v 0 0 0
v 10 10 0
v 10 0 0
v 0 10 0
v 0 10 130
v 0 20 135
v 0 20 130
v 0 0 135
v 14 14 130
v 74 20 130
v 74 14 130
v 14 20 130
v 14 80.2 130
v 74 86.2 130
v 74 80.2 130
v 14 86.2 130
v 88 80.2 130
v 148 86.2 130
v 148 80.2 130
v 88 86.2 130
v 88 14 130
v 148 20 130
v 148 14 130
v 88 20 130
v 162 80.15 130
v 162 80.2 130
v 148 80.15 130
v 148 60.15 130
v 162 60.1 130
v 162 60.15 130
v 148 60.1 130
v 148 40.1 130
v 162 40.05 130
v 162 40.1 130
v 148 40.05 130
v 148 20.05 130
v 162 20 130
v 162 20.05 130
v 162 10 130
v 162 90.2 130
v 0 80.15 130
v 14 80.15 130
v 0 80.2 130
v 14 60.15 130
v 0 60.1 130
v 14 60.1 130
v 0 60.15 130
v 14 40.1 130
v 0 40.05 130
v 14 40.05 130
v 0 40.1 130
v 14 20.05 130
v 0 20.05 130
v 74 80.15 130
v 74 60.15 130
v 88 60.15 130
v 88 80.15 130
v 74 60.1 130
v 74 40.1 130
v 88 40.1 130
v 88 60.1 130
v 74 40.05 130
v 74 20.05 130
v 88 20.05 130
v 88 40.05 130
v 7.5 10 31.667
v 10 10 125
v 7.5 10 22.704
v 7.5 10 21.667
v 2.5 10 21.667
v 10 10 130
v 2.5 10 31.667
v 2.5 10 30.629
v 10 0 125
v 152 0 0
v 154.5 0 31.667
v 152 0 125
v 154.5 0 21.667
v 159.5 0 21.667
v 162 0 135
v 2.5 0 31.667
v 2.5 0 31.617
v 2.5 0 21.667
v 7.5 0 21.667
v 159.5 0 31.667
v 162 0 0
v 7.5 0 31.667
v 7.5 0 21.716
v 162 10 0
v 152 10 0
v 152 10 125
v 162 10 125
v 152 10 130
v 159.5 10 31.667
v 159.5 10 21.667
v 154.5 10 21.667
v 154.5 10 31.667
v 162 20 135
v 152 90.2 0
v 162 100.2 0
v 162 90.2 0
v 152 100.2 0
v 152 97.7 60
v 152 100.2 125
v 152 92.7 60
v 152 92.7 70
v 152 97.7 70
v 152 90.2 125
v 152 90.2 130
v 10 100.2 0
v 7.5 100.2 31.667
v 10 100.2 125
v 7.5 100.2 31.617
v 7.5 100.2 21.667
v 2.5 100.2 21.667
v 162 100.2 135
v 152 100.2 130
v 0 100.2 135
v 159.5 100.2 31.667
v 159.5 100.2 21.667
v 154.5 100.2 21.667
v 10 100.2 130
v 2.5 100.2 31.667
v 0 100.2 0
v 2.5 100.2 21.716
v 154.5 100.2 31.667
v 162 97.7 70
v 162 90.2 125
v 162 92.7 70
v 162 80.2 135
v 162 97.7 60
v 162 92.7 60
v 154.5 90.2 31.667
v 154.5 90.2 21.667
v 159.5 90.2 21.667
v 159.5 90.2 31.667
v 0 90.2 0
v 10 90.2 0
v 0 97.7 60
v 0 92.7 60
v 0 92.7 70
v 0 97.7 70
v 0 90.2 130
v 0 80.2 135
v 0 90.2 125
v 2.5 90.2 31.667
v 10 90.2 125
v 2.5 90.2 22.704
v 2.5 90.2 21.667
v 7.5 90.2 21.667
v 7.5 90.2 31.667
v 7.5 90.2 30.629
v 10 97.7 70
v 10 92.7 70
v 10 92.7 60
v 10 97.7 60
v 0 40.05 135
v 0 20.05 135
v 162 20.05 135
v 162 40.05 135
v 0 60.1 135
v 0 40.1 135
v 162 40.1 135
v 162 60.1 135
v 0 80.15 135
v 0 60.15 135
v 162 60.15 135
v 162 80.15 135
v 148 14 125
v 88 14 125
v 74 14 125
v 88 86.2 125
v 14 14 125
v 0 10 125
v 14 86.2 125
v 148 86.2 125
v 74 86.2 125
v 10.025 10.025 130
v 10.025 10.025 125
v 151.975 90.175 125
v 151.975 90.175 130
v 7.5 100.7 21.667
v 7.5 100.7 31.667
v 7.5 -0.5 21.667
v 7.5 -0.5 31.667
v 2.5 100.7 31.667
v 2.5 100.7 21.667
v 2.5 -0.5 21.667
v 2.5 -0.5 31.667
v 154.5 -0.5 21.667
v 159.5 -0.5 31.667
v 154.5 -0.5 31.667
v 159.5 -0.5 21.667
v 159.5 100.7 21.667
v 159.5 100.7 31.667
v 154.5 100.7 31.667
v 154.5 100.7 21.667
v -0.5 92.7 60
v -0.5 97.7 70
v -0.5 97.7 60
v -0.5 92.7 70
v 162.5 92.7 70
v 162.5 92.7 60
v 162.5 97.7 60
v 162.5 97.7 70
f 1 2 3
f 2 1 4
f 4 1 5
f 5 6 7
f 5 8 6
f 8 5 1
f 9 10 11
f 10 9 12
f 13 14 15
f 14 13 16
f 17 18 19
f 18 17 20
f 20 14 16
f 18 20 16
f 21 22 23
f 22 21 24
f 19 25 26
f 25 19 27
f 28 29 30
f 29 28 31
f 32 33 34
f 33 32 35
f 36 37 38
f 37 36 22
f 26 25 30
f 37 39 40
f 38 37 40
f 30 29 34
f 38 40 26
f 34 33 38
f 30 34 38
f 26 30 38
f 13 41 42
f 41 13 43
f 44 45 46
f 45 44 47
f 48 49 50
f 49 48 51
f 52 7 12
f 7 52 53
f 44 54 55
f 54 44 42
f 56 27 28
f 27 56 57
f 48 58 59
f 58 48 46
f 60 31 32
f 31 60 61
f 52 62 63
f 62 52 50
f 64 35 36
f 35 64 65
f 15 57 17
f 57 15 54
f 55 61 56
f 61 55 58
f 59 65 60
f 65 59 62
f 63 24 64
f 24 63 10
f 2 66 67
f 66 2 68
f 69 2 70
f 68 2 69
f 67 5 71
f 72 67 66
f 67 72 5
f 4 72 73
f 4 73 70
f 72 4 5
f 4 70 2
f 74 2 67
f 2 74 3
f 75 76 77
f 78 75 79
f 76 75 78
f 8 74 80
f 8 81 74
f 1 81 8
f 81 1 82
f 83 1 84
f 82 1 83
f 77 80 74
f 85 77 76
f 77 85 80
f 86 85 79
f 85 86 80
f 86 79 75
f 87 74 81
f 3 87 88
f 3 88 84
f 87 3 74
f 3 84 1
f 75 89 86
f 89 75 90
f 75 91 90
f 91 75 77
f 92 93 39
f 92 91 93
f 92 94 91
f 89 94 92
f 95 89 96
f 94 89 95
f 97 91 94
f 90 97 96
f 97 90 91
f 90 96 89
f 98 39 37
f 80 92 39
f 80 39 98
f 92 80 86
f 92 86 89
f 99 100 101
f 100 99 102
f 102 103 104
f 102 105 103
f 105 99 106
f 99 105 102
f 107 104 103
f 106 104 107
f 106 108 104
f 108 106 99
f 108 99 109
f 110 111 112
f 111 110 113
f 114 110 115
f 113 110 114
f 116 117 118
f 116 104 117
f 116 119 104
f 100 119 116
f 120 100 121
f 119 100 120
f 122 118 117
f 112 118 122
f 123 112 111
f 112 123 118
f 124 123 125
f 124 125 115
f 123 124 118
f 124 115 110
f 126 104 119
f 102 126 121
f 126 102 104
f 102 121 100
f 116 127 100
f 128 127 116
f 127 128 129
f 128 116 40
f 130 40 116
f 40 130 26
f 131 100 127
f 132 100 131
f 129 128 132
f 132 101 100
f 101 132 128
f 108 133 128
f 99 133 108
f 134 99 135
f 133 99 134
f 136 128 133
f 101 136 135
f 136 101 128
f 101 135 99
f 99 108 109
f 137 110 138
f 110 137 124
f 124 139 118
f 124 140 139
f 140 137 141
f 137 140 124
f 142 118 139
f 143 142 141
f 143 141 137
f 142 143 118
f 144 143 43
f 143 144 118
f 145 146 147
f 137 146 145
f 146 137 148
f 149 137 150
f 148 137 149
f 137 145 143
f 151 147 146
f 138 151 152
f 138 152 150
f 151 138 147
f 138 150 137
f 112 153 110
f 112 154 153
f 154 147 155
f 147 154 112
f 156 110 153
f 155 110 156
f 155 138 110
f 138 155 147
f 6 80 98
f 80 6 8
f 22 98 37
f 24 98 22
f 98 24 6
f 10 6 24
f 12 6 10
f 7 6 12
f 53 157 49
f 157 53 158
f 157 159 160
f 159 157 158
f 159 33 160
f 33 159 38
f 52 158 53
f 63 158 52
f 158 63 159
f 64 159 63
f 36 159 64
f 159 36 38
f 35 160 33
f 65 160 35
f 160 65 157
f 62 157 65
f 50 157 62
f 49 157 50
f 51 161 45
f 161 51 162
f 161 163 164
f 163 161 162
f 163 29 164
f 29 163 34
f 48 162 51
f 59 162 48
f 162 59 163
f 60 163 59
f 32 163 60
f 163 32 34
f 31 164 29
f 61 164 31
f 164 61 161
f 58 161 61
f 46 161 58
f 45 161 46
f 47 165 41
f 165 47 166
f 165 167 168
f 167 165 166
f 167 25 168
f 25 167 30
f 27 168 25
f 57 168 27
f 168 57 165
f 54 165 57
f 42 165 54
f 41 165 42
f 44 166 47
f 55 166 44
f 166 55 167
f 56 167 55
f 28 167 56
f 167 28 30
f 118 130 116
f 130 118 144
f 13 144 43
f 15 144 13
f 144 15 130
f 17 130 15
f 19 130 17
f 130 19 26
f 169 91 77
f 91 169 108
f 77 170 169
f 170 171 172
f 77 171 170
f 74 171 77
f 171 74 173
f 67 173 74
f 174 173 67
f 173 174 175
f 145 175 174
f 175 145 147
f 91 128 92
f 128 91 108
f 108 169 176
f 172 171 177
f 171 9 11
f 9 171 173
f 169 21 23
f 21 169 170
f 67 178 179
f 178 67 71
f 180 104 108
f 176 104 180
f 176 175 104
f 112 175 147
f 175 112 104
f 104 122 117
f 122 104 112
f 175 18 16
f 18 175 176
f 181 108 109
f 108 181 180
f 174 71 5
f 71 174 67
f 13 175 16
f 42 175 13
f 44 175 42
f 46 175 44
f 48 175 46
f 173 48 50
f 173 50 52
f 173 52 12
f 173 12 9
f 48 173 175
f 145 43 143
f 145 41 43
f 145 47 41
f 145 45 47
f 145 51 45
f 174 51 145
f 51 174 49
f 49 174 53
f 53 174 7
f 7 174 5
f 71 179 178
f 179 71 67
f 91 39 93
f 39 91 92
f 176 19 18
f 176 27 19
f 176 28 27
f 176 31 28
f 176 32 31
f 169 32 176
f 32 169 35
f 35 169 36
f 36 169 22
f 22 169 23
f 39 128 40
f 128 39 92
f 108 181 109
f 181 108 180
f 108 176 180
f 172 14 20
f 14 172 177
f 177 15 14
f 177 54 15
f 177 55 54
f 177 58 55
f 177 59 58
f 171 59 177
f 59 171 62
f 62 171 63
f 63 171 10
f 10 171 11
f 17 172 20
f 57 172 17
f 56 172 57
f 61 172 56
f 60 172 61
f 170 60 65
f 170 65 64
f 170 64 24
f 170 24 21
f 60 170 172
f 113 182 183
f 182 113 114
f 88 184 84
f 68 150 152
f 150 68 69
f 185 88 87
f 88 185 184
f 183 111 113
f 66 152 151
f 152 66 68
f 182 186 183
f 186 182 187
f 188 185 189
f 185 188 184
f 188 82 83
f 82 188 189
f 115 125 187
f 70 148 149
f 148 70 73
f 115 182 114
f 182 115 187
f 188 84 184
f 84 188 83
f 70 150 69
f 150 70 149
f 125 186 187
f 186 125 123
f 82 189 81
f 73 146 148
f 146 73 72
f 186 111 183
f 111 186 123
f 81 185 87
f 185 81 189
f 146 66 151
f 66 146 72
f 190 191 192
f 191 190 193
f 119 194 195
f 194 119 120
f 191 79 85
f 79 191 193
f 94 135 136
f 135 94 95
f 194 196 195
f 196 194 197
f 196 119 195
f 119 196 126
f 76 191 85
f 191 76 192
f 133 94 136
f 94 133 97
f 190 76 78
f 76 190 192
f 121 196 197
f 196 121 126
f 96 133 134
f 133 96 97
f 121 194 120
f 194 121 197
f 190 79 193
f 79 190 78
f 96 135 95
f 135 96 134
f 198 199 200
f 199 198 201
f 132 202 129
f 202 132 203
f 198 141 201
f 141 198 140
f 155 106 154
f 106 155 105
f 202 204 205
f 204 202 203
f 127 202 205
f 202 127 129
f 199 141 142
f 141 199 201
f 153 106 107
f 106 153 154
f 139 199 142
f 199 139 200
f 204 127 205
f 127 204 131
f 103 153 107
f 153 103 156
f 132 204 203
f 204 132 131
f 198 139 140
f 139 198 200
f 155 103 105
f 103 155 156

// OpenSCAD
// file: common/board.scad
// board.scad

BOARD_DEFAULT_LENGTH = 600;
BOARD_DEFAULT_WIDTH = 120;
BOARD_DEFAULT_THICKNESS = 120;

function board_get_default_size()
    = [BOARD_DEFAULT_LENGTH, BOARD_DEFAULT_WIDTH, BOARD_DEFAULT_THICKNESS];

module board(size = board_get_default_size(), center = false)
{
    // size[0] is always with the grain
    // size[1] is against the grain
    // size[2] is the board thickness
    cube(size = size, center = center);
}
// main file
// workbench.scad
// units: centimeter

use <common/board.scad>

LEG_BOARD_LENGTH = 130;
LEG_BOARD_WIDTH = 10;
LEG_BOARD_THICKNESS = LEG_BOARD_WIDTH;

LEG_SEP_DISTANCE_X = 142;

TOP_BOARD_LENGTH = LEG_SEP_DISTANCE_X + (2 * LEG_BOARD_THICKNESS);
TOP_BOARD_WIDTH = 20;
TOP_BOARD_THICKNESS = 5;
TOP_BOARD_SEP_DIST = 0.05;
TOP_BOARD_COUNT = 5;

LEG_SEP_DISTANCE_Y =
        (TOP_BOARD_WIDTH * TOP_BOARD_COUNT)
        + (TOP_BOARD_SEP_DIST * (TOP_BOARD_COUNT - 1))
        - (2 * LEG_BOARD_WIDTH);
        
TOP_TOTAL_WIDTH = LEG_SEP_DISTANCE_Y + (2 * LEG_BOARD_THICKNESS);

EDGE_SUP_BOARD_THICKNESS = 5;
LONG_EDGE_SUP_BOARD_LENGTH = LEG_SEP_DISTANCE_X;
LONG_EDGE_SUP_BOARD_WIDTH = 14;
LONG_EDGE_SUP_BOARD_THICKNESS = EDGE_SUP_BOARD_THICKNESS;

SHORT_EDGE_SUP_BOARD_LENGTH = LEG_SEP_DISTANCE_Y;
SHORT_EDGE_SUP_BOARD_WIDTH = 14;
SHORT_EDGE_SUP_BOARD_THICKNESS = EDGE_SUP_BOARD_THICKNESS;

SUPPORT_BOARD_OVERRUN = 0.5;
BACK_SUPPORT_BOARD_LENGTH =
        LEG_SEP_DISTANCE_X +
        (2 * LEG_BOARD_THICKNESS) +
        (2 * SUPPORT_BOARD_OVERRUN);
BACK_SUPPORT_BOARD_WIDTH = 10;
BACK_SUPPORT_BOARD_THICKNESS = 5;

SIDE_SUPPORT_BOARD_LENGTH =
        LEG_SEP_DISTANCE_Y +
        (2 * LEG_BOARD_WIDTH) +
        (2 * SUPPORT_BOARD_OVERRUN);
SIDE_SUPPORT_BOARD_WIDTH = 10;
SIDE_SUPPORT_BOARD_THICKNESS = 5;

module leg_board()
{
    board_size = [
            LEG_BOARD_LENGTH,
            LEG_BOARD_WIDTH,
            LEG_BOARD_THICKNESS];

    translate([board_size[2]/2, board_size[1]/2, 0])
        rotate([0, -90, 0])
            translate([0, -board_size[1]/2, -board_size[2]/2])
                board(board_size);
}

module top_boards()
{
    board_size = [
            TOP_BOARD_LENGTH,
            TOP_BOARD_WIDTH,
            TOP_BOARD_THICKNESS];

    for(b=[0:TOP_BOARD_COUNT - 1])
    {
        translate([0, b * (TOP_BOARD_WIDTH + TOP_BOARD_SEP_DIST), 0])
            board(board_size);
    }
}

module top_long_edge_support_board()
{
    board_size = [
            LONG_EDGE_SUP_BOARD_LENGTH,
            LONG_EDGE_SUP_BOARD_WIDTH,
            LONG_EDGE_SUP_BOARD_THICKNESS];

    a = (LONG_EDGE_SUP_BOARD_WIDTH - LEG_BOARD_WIDTH);
    b = a * tan(45);
    
    points = [
            [0, 0],
            [b, a],
            [0, a]];

    difference()
    {
        board(board_size);
        
        translate([0, LEG_BOARD_WIDTH, 0])
            linear_extrude(
                    height = board_size[2],
                    center = false,
                    convexity = 0,
                    twist = 0)
                polygon(points);
        
        translate([board_size[0], LEG_BOARD_WIDTH, board_size[2]/2])
            rotate([0, 180, 0])
                translate([0, 0, -board_size[2]/2])
                    linear_extrude(
                            height = board_size[2],
                            center = false,
                            convexity = 0,
                            twist = 0)
                        polygon(points);
    }
}

module top_short_edge_support_board()
{
    board_size = [
            SHORT_EDGE_SUP_BOARD_LENGTH,
            SHORT_EDGE_SUP_BOARD_WIDTH,
            SHORT_EDGE_SUP_BOARD_THICKNESS];

    a = (SHORT_EDGE_SUP_BOARD_WIDTH - LEG_BOARD_THICKNESS);
    b = a * tan(45);
    
    points = [
            [0, 0],
            [b, a],
            [0, a]];

    difference()
    {
        board(board_size);
        
        translate([0, LEG_BOARD_WIDTH, 0])
            linear_extrude(
                    height = board_size[2],
                    center = false,
                    convexity = 0,
                    twist = 0)
                polygon(points);
        
        translate([board_size[0], LEG_BOARD_WIDTH, board_size[2]/2])
            rotate([0, 180, 0])
                translate([0, 0, -board_size[2]/2])
                    linear_extrude(
                            height = board_size[2],
                            center = false,
                            convexity = 0,
                            twist = 0)
                        polygon(points);
    }
}

module top_edge_support_boards()
{
    offset_short = [
            LEG_BOARD_THICKNESS,
            SHORT_EDGE_SUP_BOARD_LENGTH + (2 * LEG_BOARD_WIDTH),
            LONG_EDGE_SUP_BOARD_THICKNESS];
    
    offset_long = [
            LONG_EDGE_SUP_BOARD_LENGTH + (2 * LEG_BOARD_THICKNESS),
            LEG_BOARD_THICKNESS,
            0];
    
    translate([LEG_BOARD_THICKNESS, 0, 0])
        top_long_edge_support_board();
    
    translate(offset_short)
        rotate([180, 0, 0])
            top_long_edge_support_board();
    
    translate([0, SHORT_EDGE_SUP_BOARD_LENGTH + LEG_BOARD_WIDTH, 0])
        rotate([0, 0, -90])
            top_short_edge_support_board();
    
    translate(offset_long)
        rotate([0, 0, 90])
            top_short_edge_support_board();
}

module top_cross_support_board()
{
    board_size = [
            TOP_TOTAL_WIDTH - (2 * LONG_EDGE_SUP_BOARD_WIDTH),
            SHORT_EDGE_SUP_BOARD_WIDTH,
            SHORT_EDGE_SUP_BOARD_THICKNESS];
    
    translate([0, board_size[0] + LONG_EDGE_SUP_BOARD_WIDTH, 0])
        rotate([0, 0, -90])
            board(board_size);
}

module top()
{
    offset_cross_support = [
            TOP_BOARD_LENGTH/2 - SHORT_EDGE_SUP_BOARD_WIDTH/2,
            0,
            LEG_BOARD_LENGTH - EDGE_SUP_BOARD_THICKNESS];

    translate([0, 0, LEG_BOARD_LENGTH])
        top_boards();

    translate([0, 0, LEG_BOARD_LENGTH - EDGE_SUP_BOARD_THICKNESS])
        top_edge_support_boards();
    
    translate(offset_cross_support)
        top_cross_support_board();
}

module legs()
{
    offset_a = [
            LEG_SEP_DISTANCE_X + LEG_BOARD_THICKNESS,
            0,
            0];
    
    offset_b = [
            LEG_SEP_DISTANCE_X + LEG_BOARD_THICKNESS,
            LEG_SEP_DISTANCE_Y + LEG_BOARD_THICKNESS,
            0];
    
    offset_c = [
            0,
            LEG_SEP_DISTANCE_Y + LEG_BOARD_THICKNESS,
            0];

    leg_board();
    
    translate(offset_a)
        leg_board();

    translate(offset_b)
        leg_board();

    translate(offset_c)
        leg_board();
}

module back_support_board()
{
    board_size = [
            BACK_SUPPORT_BOARD_LENGTH,
            BACK_SUPPORT_BOARD_WIDTH,
            BACK_SUPPORT_BOARD_THICKNESS];

    offset_v = LEG_BOARD_WIDTH + LEG_SEP_DISTANCE_Y +
            (LEG_BOARD_THICKNESS/2) - (board_size[2]/2);

    offset_m = [
            -SUPPORT_BOARD_OVERRUN,
            board_size[2] + offset_v,
            LEG_BOARD_LENGTH/2 - board_size[1]/2];

    translate(offset_m)
        rotate([90, 0, 0])
            board(board_size);
}

module side_support_boards()
{
    board_size = [
            SIDE_SUPPORT_BOARD_LENGTH,
            SIDE_SUPPORT_BOARD_WIDTH,
            SIDE_SUPPORT_BOARD_THICKNESS];

    offset_a = [
            LEG_BOARD_THICKNESS/2 - board_size[2]/2,
            -SUPPORT_BOARD_OVERRUN,
            LEG_BOARD_LENGTH/6];
    
    offset_m = (LEG_BOARD_THICKNESS/2) - (board_size[2]/2);
    
    offset_b = [
            LEG_SEP_DISTANCE_X + LEG_BOARD_THICKNESS + offset_m,
            -SUPPORT_BOARD_OVERRUN,
            LEG_BOARD_LENGTH/6];
    
    translate(offset_a)
        rotate([90, 0, 90])
            board(board_size);
    
    translate(offset_b)
        rotate([90, 0, 90])
            board(board_size);
}

module workbench()
{
    legs();
    back_support_board();
    side_support_boards();
    top();
}

workbench();
